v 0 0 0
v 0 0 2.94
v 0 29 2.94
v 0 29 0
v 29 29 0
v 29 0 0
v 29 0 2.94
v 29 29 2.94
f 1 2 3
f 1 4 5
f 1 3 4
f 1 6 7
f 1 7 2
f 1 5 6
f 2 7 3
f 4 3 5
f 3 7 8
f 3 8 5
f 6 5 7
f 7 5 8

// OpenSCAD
/* Warning, this is a very basic generator with a lot of approximation 
input data : [BBGA, C5C, 29x29x2.94mm, 753, , A, C04-25174A]
generated by com.zoubworld.electronics.cad.model3d.Basic
Date : Sun Feb 15 10:50:49 CET 2026
*/

//body
color("black")
translate([0,0,0])
cube([29.0,29.0,2.94], center=false);
